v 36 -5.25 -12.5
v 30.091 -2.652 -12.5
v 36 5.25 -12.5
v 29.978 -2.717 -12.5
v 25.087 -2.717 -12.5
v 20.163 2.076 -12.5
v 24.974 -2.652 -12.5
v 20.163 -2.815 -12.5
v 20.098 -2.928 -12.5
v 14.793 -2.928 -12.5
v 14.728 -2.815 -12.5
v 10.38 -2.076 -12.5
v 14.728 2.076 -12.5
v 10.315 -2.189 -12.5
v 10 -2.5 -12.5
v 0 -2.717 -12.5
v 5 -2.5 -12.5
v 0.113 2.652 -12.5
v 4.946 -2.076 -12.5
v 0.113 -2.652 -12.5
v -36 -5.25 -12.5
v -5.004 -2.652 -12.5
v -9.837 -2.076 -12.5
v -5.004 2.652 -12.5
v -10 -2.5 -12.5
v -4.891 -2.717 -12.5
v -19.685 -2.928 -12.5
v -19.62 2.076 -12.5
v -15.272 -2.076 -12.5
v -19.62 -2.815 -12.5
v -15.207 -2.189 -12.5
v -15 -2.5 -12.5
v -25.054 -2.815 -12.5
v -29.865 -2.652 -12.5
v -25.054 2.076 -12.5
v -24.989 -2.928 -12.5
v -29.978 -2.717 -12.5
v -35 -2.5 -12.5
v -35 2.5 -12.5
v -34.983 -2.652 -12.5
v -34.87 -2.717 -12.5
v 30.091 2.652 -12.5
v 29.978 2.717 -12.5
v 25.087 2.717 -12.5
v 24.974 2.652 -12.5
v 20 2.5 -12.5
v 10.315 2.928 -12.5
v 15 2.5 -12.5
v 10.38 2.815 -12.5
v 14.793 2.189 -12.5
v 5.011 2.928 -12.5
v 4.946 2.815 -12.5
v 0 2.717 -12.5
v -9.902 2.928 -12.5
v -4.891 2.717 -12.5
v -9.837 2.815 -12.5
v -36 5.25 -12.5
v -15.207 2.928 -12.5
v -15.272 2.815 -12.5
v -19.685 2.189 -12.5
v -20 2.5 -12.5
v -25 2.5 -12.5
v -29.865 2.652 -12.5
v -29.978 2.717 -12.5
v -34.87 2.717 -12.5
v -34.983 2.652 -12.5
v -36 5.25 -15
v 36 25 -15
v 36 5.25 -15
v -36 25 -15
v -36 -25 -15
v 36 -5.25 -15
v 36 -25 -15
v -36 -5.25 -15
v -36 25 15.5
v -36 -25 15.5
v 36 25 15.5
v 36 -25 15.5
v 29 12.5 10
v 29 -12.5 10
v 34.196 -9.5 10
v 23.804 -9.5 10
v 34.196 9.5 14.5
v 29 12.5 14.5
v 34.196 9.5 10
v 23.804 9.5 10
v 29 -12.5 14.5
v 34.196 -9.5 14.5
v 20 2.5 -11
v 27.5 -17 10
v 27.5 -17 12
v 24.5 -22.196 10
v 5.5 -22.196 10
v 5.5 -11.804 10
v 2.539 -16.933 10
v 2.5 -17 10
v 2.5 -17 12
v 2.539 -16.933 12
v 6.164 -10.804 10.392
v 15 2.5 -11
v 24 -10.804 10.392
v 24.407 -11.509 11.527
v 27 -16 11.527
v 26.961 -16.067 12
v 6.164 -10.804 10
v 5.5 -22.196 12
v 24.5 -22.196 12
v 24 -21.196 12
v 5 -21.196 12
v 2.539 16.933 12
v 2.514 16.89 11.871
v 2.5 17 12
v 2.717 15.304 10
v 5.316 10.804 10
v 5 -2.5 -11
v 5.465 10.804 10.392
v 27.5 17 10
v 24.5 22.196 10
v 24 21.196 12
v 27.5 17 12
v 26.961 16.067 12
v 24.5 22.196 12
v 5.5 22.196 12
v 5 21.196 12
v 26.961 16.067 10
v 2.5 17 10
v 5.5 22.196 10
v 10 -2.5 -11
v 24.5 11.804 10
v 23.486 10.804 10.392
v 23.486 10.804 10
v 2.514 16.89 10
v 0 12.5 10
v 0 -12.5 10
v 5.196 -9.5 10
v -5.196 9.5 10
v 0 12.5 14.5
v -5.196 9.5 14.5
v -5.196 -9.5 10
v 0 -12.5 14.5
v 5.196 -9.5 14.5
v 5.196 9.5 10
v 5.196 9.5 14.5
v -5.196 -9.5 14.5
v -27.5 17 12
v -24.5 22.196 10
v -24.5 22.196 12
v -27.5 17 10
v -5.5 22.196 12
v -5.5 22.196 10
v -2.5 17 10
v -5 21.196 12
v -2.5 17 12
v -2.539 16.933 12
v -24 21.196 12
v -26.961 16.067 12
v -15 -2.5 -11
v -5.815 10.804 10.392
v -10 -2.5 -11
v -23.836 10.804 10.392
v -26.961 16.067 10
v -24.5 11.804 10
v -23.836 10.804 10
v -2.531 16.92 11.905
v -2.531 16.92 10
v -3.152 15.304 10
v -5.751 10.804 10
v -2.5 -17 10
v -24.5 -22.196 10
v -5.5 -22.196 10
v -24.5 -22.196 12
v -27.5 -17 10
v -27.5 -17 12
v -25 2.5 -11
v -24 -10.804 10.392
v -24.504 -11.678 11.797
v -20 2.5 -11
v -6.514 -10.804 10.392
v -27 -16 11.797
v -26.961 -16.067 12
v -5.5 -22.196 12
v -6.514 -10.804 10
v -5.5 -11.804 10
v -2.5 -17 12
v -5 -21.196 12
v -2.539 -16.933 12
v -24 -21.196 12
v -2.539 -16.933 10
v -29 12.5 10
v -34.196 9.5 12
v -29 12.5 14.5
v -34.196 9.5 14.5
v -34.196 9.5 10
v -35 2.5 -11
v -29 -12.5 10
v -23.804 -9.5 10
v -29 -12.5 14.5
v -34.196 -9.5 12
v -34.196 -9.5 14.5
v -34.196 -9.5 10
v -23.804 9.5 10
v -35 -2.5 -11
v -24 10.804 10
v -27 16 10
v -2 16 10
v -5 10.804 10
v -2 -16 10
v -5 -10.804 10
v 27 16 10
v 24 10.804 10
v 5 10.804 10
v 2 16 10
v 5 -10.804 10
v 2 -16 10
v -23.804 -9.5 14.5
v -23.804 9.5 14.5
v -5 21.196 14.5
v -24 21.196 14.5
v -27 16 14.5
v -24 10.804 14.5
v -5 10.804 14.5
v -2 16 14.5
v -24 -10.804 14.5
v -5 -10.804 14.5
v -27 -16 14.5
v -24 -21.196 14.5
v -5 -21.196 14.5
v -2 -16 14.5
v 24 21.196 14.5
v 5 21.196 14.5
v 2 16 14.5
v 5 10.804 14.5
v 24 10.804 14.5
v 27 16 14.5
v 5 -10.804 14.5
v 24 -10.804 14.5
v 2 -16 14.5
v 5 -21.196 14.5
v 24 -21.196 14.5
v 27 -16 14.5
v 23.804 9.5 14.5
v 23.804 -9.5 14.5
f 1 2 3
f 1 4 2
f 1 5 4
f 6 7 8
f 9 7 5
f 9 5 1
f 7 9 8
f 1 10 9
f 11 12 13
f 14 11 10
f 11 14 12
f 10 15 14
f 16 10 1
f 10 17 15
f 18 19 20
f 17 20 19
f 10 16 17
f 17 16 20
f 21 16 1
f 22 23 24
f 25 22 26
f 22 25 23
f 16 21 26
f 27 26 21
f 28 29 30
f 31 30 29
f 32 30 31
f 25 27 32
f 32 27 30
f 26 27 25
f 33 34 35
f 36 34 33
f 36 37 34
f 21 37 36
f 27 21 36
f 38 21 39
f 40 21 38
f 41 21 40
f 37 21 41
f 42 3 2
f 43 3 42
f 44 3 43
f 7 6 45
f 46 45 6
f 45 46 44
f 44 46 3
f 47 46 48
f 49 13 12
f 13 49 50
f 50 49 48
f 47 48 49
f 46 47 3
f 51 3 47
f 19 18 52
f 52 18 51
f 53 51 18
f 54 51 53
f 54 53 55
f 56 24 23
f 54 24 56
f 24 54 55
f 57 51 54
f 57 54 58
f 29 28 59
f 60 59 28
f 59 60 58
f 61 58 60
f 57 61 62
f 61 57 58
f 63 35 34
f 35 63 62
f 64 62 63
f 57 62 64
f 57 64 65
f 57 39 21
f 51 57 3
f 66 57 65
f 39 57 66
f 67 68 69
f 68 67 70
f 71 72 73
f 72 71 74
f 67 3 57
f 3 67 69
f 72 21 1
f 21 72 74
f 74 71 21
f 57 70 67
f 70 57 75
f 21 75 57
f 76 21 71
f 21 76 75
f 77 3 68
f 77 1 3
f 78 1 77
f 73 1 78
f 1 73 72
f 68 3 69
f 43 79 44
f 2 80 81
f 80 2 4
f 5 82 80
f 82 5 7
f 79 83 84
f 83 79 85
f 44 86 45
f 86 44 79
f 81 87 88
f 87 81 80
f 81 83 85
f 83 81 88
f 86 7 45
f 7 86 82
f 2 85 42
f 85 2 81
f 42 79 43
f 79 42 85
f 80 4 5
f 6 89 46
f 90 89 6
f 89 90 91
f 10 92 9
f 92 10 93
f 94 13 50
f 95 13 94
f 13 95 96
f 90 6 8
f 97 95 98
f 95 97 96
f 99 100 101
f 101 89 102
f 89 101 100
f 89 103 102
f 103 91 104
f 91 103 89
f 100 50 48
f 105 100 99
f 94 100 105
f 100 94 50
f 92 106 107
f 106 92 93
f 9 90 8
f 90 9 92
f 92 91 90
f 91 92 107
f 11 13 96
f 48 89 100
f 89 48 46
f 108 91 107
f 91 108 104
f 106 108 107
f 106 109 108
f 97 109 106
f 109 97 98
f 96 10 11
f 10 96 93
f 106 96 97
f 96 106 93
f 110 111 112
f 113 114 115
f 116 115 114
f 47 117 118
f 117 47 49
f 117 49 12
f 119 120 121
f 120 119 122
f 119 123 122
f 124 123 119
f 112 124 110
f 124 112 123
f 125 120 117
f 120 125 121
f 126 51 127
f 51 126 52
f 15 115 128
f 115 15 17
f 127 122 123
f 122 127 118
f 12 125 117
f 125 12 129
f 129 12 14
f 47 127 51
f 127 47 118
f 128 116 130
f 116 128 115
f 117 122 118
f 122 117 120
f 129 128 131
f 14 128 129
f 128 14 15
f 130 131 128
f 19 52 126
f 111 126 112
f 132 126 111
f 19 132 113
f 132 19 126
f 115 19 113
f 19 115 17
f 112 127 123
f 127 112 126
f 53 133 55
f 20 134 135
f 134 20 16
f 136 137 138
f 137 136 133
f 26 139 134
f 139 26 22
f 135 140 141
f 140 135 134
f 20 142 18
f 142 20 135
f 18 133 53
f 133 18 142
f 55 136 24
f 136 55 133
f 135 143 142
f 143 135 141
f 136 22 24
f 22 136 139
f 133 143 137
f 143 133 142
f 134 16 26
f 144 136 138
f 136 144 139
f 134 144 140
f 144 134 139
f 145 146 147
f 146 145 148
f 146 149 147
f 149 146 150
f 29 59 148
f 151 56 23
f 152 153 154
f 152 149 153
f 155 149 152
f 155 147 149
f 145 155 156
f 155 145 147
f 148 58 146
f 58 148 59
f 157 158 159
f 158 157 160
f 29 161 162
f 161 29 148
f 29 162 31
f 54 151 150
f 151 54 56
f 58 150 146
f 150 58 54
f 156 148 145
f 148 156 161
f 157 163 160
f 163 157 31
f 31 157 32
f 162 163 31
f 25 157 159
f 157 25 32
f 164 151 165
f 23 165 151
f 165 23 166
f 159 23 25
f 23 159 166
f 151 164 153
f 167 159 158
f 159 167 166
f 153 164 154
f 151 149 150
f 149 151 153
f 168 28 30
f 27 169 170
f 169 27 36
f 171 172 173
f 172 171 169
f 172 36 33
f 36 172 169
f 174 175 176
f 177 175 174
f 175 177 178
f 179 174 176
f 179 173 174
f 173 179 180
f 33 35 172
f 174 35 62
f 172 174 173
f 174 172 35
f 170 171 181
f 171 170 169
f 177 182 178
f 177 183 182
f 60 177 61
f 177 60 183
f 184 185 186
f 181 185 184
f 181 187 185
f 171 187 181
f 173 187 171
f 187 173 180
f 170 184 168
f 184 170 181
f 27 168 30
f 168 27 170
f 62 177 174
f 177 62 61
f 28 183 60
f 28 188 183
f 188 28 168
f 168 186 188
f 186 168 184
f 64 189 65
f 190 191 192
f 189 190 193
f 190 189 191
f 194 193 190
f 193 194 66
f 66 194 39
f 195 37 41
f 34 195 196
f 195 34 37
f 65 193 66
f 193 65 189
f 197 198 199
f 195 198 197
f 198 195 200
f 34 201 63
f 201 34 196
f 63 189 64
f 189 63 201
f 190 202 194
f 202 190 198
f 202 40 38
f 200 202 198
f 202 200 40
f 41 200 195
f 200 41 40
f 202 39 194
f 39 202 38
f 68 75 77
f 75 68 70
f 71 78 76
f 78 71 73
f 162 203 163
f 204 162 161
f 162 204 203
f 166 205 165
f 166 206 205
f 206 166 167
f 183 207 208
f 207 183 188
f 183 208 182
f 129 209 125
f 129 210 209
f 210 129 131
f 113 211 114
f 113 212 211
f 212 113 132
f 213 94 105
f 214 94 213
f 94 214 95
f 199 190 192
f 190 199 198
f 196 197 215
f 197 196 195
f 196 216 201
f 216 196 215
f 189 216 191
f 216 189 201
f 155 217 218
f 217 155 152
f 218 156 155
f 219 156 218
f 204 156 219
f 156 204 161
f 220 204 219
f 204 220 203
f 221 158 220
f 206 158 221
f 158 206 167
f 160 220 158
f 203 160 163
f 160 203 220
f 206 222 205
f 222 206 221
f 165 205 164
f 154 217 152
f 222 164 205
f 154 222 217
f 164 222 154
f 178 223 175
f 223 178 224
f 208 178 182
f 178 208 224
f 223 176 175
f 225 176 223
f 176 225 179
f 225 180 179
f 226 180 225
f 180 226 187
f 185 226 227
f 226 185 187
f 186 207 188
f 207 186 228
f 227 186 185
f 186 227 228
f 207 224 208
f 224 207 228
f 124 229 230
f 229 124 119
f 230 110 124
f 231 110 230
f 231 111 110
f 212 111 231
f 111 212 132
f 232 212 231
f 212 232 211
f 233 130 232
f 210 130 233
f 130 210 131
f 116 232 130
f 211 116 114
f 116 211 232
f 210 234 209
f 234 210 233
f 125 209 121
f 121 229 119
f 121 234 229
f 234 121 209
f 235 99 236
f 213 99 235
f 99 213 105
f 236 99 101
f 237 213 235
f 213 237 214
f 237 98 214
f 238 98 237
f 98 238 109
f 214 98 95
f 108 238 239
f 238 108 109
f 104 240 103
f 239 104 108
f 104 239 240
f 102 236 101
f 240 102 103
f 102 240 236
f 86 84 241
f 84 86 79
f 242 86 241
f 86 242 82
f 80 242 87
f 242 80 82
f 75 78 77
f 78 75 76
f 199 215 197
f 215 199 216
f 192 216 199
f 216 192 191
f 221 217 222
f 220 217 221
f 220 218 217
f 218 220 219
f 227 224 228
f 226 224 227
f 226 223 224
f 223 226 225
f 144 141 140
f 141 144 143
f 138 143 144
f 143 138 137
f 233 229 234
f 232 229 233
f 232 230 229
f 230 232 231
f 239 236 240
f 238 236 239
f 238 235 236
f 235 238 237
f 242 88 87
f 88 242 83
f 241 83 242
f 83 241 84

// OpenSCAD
// WS2812 LED Strip Parameters - verified measurements
led_spacing = 10;      // 10mm between LED centers
strip_width = 10;      // 10mm wide LED strip
strip_height = 2;      // Keep same
tolerance = 0.5;       // Keep same
led_size = 5;         // 5mm square LED cutouts

// Updated Base Parameters
base_width = 72;      // Optimized smaller base
base_length = 50;     // Adjusted proportionally
base_height = 30;     // Increased by 25% from 25mm
wire_channel_length = 10;

// Updated Light pipe parameters
cavity_width_bottom = 3;  
cavity_width_top = 8;    // Increased for better light spread
path_separation = 10;      

// Updated 7-Segment Display Parameters
segment_h_length = 25;    // Increased horizontal length for wider number
segment_v_length = 25;    // Kept reduced vertical length
segment_width = 12;        // Keep wider segments
segment_depth = 5;       // Keep same
segment_spacing = 2;      // Keep tight spacing
x_offset = 16;           // Increased horizontal spread

// Add diffuser parameters
diffuser_height = 1;

// Define LED positions globally
y_offset = -strip_width/4;
led1 = [0, -3.0 * led_spacing];  // LED1
led2 = [0,-2.0 * led_spacing];  // LED2
led3 = [0,-1.0 * led_spacing];  // LED3
led4 = [0,0.0 * led_spacing];   // LED4 - Center LED
led5 = [0,1.0 * led_spacing];   // LED5
led6 = [0,2.0 * led_spacing];   // LED6
led7 = [0,3.0 * led_spacing];   // LED7

// Define segment positions globally - Wide and squished
seg_f = [-17, 15];     // F (top left vertical) - moved outward
seg_e = [-17, -15];    // E (bottom left vertical) - moved outward
seg_a = [0, 29];      // A (top horizontal) - same height
seg_g = [0, 0];       // G (middle horizontal) - unchanged
seg_b = [17, 15];      // B (top right vertical) - moved closer
seg_c = [17, -15];     // C (bottom right vertical) - moved closer
seg_d = [0, -29];     // D (bottom horizontal) - moved closer

// LED Strip Channel with wire channels - centered
module led_channel() {
        // Main channel exactly 10mm wide plus tolerance
        translate([-base_width/2 + wire_channel_length, -strip_width/2 - tolerance/2, -base_height/2])
            cube([base_width - 2*wire_channel_length, strip_width + tolerance, strip_height + tolerance]);
        
        // Wire channels same width
        translate([-base_width/2, -strip_width/2 - tolerance/2, -base_height/2])
            cube([wire_channel_length, strip_width + tolerance, strip_height + tolerance]);
        translate([base_width/2 - wire_channel_length, -strip_width/2 - tolerance/2, -base_height/2])
            cube([wire_channel_length, strip_width + tolerance, strip_height + tolerance]);
    
}

// Single light pipe cavity with elongating shape
module light_cavity(led_pos, segment_pos, is_horizontal=false) {
    // Calculate heights for better progression
    z_bottom = -base_height/2 + strip_height;
    z_top = base_height/2 - segment_depth;
    total_height = z_top - z_bottom;
    
    hull() {
        // Bottom (at LED) - small square
        translate([led_pos[0] - led_size/2, led_pos[1], z_bottom])
            cube([led_size, led_size, 2]);
     
            
        // Top (at segment) - full segment shape
        translate([segment_pos[0], segment_pos[1], z_top]) {
            rotate([0, 0, is_horizontal ? 0 : 90])
                linear_extrude(height=2)
                    segment(segment_h_length, segment_width);
        }
    }
    
}

// All light cavities with corrected segment positions and mirroring
module all_cavities(visualization=false) {
    color_alpha = visualization ? ["Red", 0.8] : ["Gold", 1];
    
    color(color_alpha[0], color_alpha[1])
    rotate([0, 0, 90]) {
        y_offset = -strip_width/4;
        
        // Light paths
        light_cavity(led1, seg_d, true);   // LED1 → F (vertical)

        light_cavity(led2, seg_e, false);   // LED2 → E (vertical)
        light_cavity(led3, seg_c, false);    // LED3 → A (horizontal)

        light_cavity(led4, seg_g, true);    // LED4 → G (horizontal)

        light_cavity(led5, seg_b, false);   // LED5 → B (vertical)
        light_cavity(led6, seg_f, false);   // LED6 → C (vertical)

        light_cavity(led7, seg_a, true);    // LED6 → D (horizontal)
    }
}

// Base with LED channel, cavities, 
module base() {
    difference() {
        union() {
            // Main block
            cube([base_width, base_length, base_height], center=true);
                        
        }
        
        // LED channel with wire channels
        led_channel();
        // Light pipe cavities
        all_cavities(false);  // Use same paths for actual cavities
        
        // Ensure cavities connect to segments
        translate([0, 0, base_height/2 - segment_depth])
            linear_extrude(height=segment_depth + 1)
                seven_segments();
    }
}

module segment(length, width) {
    // Elongated hexagonal shape
    hull() {
        translate([-length/2 + width/2, 0, 0]) 
            circle(d=width, $fn=6);
        translate([length/2 - width/2, 0, 0])  
            circle(d=width, $fn=6);
    }
}

module seven_segments() {
    rotate([0, 0, 90])  // Rotate the entire segment layout 90°
    union() {
        // A (now right horizontal)
        translate([0, segment_v_length + segment_spacing*2, 0]) 
            segment(segment_h_length, segment_width);
        
        // B,F (now top and bottom verticals on right side)
        translate([x_offset, segment_v_length/2 + segment_spacing, 0]) 
            rotate([0,0,90]) 
                segment(segment_v_length, segment_width);  // B
        translate([-x_offset, segment_v_length/2 + segment_spacing, 0]) 
            rotate([0,0,90]) 
                segment(segment_v_length, segment_width);  // F
        
        // G (middle horizontal, now vertical)
        translate([0, 0, 0])
            segment(segment_h_length, segment_width);
        
        // C,E (bottom verticals, now left side horizontals)
        translate([x_offset, -segment_v_length/2 - segment_spacing, 0]) 
            rotate([0,0,90]) 
                segment(segment_v_length, segment_width);  // C
        translate([-x_offset, -segment_v_length/2 - segment_spacing, 0]) 
            rotate([0,0,90]) 
                segment(segment_v_length, segment_width);  // E
        
        // D (now left horizontal)
        translate([0, -segment_v_length - segment_spacing*2, 0]) 
            segment(segment_h_length, segment_width);
    }
}

// Top layer with segment cavities
module segment_layer() {
    color("SteelBlue")
    difference() {
        // Main plate - extended to match base
        translate([0, 0, base_height/2])
            cube([base_width, base_length, segment_depth], center=true);
        
        // Individual segment cavities
        translate([0, 0, base_height/2 - segment_depth/2])
            linear_extrude(height=segment_depth + 1)
                seven_segments();
    }
}

// Diffuser layer module
module diffuser_layer() {
    color("White", alpha=0.2)  // Semi-transparent to visualize
    translate([0, 0, base_height/2])  // Changed to sit directly on base
        cube([base_width, base_length, diffuser_height], center=true);
}

// Render just the paths in red with slight transparency
//all_cavities(true);  // Show paths
color("Green", alpha=0.9)
union() {
   base();
   diffuser_layer();
}
   
